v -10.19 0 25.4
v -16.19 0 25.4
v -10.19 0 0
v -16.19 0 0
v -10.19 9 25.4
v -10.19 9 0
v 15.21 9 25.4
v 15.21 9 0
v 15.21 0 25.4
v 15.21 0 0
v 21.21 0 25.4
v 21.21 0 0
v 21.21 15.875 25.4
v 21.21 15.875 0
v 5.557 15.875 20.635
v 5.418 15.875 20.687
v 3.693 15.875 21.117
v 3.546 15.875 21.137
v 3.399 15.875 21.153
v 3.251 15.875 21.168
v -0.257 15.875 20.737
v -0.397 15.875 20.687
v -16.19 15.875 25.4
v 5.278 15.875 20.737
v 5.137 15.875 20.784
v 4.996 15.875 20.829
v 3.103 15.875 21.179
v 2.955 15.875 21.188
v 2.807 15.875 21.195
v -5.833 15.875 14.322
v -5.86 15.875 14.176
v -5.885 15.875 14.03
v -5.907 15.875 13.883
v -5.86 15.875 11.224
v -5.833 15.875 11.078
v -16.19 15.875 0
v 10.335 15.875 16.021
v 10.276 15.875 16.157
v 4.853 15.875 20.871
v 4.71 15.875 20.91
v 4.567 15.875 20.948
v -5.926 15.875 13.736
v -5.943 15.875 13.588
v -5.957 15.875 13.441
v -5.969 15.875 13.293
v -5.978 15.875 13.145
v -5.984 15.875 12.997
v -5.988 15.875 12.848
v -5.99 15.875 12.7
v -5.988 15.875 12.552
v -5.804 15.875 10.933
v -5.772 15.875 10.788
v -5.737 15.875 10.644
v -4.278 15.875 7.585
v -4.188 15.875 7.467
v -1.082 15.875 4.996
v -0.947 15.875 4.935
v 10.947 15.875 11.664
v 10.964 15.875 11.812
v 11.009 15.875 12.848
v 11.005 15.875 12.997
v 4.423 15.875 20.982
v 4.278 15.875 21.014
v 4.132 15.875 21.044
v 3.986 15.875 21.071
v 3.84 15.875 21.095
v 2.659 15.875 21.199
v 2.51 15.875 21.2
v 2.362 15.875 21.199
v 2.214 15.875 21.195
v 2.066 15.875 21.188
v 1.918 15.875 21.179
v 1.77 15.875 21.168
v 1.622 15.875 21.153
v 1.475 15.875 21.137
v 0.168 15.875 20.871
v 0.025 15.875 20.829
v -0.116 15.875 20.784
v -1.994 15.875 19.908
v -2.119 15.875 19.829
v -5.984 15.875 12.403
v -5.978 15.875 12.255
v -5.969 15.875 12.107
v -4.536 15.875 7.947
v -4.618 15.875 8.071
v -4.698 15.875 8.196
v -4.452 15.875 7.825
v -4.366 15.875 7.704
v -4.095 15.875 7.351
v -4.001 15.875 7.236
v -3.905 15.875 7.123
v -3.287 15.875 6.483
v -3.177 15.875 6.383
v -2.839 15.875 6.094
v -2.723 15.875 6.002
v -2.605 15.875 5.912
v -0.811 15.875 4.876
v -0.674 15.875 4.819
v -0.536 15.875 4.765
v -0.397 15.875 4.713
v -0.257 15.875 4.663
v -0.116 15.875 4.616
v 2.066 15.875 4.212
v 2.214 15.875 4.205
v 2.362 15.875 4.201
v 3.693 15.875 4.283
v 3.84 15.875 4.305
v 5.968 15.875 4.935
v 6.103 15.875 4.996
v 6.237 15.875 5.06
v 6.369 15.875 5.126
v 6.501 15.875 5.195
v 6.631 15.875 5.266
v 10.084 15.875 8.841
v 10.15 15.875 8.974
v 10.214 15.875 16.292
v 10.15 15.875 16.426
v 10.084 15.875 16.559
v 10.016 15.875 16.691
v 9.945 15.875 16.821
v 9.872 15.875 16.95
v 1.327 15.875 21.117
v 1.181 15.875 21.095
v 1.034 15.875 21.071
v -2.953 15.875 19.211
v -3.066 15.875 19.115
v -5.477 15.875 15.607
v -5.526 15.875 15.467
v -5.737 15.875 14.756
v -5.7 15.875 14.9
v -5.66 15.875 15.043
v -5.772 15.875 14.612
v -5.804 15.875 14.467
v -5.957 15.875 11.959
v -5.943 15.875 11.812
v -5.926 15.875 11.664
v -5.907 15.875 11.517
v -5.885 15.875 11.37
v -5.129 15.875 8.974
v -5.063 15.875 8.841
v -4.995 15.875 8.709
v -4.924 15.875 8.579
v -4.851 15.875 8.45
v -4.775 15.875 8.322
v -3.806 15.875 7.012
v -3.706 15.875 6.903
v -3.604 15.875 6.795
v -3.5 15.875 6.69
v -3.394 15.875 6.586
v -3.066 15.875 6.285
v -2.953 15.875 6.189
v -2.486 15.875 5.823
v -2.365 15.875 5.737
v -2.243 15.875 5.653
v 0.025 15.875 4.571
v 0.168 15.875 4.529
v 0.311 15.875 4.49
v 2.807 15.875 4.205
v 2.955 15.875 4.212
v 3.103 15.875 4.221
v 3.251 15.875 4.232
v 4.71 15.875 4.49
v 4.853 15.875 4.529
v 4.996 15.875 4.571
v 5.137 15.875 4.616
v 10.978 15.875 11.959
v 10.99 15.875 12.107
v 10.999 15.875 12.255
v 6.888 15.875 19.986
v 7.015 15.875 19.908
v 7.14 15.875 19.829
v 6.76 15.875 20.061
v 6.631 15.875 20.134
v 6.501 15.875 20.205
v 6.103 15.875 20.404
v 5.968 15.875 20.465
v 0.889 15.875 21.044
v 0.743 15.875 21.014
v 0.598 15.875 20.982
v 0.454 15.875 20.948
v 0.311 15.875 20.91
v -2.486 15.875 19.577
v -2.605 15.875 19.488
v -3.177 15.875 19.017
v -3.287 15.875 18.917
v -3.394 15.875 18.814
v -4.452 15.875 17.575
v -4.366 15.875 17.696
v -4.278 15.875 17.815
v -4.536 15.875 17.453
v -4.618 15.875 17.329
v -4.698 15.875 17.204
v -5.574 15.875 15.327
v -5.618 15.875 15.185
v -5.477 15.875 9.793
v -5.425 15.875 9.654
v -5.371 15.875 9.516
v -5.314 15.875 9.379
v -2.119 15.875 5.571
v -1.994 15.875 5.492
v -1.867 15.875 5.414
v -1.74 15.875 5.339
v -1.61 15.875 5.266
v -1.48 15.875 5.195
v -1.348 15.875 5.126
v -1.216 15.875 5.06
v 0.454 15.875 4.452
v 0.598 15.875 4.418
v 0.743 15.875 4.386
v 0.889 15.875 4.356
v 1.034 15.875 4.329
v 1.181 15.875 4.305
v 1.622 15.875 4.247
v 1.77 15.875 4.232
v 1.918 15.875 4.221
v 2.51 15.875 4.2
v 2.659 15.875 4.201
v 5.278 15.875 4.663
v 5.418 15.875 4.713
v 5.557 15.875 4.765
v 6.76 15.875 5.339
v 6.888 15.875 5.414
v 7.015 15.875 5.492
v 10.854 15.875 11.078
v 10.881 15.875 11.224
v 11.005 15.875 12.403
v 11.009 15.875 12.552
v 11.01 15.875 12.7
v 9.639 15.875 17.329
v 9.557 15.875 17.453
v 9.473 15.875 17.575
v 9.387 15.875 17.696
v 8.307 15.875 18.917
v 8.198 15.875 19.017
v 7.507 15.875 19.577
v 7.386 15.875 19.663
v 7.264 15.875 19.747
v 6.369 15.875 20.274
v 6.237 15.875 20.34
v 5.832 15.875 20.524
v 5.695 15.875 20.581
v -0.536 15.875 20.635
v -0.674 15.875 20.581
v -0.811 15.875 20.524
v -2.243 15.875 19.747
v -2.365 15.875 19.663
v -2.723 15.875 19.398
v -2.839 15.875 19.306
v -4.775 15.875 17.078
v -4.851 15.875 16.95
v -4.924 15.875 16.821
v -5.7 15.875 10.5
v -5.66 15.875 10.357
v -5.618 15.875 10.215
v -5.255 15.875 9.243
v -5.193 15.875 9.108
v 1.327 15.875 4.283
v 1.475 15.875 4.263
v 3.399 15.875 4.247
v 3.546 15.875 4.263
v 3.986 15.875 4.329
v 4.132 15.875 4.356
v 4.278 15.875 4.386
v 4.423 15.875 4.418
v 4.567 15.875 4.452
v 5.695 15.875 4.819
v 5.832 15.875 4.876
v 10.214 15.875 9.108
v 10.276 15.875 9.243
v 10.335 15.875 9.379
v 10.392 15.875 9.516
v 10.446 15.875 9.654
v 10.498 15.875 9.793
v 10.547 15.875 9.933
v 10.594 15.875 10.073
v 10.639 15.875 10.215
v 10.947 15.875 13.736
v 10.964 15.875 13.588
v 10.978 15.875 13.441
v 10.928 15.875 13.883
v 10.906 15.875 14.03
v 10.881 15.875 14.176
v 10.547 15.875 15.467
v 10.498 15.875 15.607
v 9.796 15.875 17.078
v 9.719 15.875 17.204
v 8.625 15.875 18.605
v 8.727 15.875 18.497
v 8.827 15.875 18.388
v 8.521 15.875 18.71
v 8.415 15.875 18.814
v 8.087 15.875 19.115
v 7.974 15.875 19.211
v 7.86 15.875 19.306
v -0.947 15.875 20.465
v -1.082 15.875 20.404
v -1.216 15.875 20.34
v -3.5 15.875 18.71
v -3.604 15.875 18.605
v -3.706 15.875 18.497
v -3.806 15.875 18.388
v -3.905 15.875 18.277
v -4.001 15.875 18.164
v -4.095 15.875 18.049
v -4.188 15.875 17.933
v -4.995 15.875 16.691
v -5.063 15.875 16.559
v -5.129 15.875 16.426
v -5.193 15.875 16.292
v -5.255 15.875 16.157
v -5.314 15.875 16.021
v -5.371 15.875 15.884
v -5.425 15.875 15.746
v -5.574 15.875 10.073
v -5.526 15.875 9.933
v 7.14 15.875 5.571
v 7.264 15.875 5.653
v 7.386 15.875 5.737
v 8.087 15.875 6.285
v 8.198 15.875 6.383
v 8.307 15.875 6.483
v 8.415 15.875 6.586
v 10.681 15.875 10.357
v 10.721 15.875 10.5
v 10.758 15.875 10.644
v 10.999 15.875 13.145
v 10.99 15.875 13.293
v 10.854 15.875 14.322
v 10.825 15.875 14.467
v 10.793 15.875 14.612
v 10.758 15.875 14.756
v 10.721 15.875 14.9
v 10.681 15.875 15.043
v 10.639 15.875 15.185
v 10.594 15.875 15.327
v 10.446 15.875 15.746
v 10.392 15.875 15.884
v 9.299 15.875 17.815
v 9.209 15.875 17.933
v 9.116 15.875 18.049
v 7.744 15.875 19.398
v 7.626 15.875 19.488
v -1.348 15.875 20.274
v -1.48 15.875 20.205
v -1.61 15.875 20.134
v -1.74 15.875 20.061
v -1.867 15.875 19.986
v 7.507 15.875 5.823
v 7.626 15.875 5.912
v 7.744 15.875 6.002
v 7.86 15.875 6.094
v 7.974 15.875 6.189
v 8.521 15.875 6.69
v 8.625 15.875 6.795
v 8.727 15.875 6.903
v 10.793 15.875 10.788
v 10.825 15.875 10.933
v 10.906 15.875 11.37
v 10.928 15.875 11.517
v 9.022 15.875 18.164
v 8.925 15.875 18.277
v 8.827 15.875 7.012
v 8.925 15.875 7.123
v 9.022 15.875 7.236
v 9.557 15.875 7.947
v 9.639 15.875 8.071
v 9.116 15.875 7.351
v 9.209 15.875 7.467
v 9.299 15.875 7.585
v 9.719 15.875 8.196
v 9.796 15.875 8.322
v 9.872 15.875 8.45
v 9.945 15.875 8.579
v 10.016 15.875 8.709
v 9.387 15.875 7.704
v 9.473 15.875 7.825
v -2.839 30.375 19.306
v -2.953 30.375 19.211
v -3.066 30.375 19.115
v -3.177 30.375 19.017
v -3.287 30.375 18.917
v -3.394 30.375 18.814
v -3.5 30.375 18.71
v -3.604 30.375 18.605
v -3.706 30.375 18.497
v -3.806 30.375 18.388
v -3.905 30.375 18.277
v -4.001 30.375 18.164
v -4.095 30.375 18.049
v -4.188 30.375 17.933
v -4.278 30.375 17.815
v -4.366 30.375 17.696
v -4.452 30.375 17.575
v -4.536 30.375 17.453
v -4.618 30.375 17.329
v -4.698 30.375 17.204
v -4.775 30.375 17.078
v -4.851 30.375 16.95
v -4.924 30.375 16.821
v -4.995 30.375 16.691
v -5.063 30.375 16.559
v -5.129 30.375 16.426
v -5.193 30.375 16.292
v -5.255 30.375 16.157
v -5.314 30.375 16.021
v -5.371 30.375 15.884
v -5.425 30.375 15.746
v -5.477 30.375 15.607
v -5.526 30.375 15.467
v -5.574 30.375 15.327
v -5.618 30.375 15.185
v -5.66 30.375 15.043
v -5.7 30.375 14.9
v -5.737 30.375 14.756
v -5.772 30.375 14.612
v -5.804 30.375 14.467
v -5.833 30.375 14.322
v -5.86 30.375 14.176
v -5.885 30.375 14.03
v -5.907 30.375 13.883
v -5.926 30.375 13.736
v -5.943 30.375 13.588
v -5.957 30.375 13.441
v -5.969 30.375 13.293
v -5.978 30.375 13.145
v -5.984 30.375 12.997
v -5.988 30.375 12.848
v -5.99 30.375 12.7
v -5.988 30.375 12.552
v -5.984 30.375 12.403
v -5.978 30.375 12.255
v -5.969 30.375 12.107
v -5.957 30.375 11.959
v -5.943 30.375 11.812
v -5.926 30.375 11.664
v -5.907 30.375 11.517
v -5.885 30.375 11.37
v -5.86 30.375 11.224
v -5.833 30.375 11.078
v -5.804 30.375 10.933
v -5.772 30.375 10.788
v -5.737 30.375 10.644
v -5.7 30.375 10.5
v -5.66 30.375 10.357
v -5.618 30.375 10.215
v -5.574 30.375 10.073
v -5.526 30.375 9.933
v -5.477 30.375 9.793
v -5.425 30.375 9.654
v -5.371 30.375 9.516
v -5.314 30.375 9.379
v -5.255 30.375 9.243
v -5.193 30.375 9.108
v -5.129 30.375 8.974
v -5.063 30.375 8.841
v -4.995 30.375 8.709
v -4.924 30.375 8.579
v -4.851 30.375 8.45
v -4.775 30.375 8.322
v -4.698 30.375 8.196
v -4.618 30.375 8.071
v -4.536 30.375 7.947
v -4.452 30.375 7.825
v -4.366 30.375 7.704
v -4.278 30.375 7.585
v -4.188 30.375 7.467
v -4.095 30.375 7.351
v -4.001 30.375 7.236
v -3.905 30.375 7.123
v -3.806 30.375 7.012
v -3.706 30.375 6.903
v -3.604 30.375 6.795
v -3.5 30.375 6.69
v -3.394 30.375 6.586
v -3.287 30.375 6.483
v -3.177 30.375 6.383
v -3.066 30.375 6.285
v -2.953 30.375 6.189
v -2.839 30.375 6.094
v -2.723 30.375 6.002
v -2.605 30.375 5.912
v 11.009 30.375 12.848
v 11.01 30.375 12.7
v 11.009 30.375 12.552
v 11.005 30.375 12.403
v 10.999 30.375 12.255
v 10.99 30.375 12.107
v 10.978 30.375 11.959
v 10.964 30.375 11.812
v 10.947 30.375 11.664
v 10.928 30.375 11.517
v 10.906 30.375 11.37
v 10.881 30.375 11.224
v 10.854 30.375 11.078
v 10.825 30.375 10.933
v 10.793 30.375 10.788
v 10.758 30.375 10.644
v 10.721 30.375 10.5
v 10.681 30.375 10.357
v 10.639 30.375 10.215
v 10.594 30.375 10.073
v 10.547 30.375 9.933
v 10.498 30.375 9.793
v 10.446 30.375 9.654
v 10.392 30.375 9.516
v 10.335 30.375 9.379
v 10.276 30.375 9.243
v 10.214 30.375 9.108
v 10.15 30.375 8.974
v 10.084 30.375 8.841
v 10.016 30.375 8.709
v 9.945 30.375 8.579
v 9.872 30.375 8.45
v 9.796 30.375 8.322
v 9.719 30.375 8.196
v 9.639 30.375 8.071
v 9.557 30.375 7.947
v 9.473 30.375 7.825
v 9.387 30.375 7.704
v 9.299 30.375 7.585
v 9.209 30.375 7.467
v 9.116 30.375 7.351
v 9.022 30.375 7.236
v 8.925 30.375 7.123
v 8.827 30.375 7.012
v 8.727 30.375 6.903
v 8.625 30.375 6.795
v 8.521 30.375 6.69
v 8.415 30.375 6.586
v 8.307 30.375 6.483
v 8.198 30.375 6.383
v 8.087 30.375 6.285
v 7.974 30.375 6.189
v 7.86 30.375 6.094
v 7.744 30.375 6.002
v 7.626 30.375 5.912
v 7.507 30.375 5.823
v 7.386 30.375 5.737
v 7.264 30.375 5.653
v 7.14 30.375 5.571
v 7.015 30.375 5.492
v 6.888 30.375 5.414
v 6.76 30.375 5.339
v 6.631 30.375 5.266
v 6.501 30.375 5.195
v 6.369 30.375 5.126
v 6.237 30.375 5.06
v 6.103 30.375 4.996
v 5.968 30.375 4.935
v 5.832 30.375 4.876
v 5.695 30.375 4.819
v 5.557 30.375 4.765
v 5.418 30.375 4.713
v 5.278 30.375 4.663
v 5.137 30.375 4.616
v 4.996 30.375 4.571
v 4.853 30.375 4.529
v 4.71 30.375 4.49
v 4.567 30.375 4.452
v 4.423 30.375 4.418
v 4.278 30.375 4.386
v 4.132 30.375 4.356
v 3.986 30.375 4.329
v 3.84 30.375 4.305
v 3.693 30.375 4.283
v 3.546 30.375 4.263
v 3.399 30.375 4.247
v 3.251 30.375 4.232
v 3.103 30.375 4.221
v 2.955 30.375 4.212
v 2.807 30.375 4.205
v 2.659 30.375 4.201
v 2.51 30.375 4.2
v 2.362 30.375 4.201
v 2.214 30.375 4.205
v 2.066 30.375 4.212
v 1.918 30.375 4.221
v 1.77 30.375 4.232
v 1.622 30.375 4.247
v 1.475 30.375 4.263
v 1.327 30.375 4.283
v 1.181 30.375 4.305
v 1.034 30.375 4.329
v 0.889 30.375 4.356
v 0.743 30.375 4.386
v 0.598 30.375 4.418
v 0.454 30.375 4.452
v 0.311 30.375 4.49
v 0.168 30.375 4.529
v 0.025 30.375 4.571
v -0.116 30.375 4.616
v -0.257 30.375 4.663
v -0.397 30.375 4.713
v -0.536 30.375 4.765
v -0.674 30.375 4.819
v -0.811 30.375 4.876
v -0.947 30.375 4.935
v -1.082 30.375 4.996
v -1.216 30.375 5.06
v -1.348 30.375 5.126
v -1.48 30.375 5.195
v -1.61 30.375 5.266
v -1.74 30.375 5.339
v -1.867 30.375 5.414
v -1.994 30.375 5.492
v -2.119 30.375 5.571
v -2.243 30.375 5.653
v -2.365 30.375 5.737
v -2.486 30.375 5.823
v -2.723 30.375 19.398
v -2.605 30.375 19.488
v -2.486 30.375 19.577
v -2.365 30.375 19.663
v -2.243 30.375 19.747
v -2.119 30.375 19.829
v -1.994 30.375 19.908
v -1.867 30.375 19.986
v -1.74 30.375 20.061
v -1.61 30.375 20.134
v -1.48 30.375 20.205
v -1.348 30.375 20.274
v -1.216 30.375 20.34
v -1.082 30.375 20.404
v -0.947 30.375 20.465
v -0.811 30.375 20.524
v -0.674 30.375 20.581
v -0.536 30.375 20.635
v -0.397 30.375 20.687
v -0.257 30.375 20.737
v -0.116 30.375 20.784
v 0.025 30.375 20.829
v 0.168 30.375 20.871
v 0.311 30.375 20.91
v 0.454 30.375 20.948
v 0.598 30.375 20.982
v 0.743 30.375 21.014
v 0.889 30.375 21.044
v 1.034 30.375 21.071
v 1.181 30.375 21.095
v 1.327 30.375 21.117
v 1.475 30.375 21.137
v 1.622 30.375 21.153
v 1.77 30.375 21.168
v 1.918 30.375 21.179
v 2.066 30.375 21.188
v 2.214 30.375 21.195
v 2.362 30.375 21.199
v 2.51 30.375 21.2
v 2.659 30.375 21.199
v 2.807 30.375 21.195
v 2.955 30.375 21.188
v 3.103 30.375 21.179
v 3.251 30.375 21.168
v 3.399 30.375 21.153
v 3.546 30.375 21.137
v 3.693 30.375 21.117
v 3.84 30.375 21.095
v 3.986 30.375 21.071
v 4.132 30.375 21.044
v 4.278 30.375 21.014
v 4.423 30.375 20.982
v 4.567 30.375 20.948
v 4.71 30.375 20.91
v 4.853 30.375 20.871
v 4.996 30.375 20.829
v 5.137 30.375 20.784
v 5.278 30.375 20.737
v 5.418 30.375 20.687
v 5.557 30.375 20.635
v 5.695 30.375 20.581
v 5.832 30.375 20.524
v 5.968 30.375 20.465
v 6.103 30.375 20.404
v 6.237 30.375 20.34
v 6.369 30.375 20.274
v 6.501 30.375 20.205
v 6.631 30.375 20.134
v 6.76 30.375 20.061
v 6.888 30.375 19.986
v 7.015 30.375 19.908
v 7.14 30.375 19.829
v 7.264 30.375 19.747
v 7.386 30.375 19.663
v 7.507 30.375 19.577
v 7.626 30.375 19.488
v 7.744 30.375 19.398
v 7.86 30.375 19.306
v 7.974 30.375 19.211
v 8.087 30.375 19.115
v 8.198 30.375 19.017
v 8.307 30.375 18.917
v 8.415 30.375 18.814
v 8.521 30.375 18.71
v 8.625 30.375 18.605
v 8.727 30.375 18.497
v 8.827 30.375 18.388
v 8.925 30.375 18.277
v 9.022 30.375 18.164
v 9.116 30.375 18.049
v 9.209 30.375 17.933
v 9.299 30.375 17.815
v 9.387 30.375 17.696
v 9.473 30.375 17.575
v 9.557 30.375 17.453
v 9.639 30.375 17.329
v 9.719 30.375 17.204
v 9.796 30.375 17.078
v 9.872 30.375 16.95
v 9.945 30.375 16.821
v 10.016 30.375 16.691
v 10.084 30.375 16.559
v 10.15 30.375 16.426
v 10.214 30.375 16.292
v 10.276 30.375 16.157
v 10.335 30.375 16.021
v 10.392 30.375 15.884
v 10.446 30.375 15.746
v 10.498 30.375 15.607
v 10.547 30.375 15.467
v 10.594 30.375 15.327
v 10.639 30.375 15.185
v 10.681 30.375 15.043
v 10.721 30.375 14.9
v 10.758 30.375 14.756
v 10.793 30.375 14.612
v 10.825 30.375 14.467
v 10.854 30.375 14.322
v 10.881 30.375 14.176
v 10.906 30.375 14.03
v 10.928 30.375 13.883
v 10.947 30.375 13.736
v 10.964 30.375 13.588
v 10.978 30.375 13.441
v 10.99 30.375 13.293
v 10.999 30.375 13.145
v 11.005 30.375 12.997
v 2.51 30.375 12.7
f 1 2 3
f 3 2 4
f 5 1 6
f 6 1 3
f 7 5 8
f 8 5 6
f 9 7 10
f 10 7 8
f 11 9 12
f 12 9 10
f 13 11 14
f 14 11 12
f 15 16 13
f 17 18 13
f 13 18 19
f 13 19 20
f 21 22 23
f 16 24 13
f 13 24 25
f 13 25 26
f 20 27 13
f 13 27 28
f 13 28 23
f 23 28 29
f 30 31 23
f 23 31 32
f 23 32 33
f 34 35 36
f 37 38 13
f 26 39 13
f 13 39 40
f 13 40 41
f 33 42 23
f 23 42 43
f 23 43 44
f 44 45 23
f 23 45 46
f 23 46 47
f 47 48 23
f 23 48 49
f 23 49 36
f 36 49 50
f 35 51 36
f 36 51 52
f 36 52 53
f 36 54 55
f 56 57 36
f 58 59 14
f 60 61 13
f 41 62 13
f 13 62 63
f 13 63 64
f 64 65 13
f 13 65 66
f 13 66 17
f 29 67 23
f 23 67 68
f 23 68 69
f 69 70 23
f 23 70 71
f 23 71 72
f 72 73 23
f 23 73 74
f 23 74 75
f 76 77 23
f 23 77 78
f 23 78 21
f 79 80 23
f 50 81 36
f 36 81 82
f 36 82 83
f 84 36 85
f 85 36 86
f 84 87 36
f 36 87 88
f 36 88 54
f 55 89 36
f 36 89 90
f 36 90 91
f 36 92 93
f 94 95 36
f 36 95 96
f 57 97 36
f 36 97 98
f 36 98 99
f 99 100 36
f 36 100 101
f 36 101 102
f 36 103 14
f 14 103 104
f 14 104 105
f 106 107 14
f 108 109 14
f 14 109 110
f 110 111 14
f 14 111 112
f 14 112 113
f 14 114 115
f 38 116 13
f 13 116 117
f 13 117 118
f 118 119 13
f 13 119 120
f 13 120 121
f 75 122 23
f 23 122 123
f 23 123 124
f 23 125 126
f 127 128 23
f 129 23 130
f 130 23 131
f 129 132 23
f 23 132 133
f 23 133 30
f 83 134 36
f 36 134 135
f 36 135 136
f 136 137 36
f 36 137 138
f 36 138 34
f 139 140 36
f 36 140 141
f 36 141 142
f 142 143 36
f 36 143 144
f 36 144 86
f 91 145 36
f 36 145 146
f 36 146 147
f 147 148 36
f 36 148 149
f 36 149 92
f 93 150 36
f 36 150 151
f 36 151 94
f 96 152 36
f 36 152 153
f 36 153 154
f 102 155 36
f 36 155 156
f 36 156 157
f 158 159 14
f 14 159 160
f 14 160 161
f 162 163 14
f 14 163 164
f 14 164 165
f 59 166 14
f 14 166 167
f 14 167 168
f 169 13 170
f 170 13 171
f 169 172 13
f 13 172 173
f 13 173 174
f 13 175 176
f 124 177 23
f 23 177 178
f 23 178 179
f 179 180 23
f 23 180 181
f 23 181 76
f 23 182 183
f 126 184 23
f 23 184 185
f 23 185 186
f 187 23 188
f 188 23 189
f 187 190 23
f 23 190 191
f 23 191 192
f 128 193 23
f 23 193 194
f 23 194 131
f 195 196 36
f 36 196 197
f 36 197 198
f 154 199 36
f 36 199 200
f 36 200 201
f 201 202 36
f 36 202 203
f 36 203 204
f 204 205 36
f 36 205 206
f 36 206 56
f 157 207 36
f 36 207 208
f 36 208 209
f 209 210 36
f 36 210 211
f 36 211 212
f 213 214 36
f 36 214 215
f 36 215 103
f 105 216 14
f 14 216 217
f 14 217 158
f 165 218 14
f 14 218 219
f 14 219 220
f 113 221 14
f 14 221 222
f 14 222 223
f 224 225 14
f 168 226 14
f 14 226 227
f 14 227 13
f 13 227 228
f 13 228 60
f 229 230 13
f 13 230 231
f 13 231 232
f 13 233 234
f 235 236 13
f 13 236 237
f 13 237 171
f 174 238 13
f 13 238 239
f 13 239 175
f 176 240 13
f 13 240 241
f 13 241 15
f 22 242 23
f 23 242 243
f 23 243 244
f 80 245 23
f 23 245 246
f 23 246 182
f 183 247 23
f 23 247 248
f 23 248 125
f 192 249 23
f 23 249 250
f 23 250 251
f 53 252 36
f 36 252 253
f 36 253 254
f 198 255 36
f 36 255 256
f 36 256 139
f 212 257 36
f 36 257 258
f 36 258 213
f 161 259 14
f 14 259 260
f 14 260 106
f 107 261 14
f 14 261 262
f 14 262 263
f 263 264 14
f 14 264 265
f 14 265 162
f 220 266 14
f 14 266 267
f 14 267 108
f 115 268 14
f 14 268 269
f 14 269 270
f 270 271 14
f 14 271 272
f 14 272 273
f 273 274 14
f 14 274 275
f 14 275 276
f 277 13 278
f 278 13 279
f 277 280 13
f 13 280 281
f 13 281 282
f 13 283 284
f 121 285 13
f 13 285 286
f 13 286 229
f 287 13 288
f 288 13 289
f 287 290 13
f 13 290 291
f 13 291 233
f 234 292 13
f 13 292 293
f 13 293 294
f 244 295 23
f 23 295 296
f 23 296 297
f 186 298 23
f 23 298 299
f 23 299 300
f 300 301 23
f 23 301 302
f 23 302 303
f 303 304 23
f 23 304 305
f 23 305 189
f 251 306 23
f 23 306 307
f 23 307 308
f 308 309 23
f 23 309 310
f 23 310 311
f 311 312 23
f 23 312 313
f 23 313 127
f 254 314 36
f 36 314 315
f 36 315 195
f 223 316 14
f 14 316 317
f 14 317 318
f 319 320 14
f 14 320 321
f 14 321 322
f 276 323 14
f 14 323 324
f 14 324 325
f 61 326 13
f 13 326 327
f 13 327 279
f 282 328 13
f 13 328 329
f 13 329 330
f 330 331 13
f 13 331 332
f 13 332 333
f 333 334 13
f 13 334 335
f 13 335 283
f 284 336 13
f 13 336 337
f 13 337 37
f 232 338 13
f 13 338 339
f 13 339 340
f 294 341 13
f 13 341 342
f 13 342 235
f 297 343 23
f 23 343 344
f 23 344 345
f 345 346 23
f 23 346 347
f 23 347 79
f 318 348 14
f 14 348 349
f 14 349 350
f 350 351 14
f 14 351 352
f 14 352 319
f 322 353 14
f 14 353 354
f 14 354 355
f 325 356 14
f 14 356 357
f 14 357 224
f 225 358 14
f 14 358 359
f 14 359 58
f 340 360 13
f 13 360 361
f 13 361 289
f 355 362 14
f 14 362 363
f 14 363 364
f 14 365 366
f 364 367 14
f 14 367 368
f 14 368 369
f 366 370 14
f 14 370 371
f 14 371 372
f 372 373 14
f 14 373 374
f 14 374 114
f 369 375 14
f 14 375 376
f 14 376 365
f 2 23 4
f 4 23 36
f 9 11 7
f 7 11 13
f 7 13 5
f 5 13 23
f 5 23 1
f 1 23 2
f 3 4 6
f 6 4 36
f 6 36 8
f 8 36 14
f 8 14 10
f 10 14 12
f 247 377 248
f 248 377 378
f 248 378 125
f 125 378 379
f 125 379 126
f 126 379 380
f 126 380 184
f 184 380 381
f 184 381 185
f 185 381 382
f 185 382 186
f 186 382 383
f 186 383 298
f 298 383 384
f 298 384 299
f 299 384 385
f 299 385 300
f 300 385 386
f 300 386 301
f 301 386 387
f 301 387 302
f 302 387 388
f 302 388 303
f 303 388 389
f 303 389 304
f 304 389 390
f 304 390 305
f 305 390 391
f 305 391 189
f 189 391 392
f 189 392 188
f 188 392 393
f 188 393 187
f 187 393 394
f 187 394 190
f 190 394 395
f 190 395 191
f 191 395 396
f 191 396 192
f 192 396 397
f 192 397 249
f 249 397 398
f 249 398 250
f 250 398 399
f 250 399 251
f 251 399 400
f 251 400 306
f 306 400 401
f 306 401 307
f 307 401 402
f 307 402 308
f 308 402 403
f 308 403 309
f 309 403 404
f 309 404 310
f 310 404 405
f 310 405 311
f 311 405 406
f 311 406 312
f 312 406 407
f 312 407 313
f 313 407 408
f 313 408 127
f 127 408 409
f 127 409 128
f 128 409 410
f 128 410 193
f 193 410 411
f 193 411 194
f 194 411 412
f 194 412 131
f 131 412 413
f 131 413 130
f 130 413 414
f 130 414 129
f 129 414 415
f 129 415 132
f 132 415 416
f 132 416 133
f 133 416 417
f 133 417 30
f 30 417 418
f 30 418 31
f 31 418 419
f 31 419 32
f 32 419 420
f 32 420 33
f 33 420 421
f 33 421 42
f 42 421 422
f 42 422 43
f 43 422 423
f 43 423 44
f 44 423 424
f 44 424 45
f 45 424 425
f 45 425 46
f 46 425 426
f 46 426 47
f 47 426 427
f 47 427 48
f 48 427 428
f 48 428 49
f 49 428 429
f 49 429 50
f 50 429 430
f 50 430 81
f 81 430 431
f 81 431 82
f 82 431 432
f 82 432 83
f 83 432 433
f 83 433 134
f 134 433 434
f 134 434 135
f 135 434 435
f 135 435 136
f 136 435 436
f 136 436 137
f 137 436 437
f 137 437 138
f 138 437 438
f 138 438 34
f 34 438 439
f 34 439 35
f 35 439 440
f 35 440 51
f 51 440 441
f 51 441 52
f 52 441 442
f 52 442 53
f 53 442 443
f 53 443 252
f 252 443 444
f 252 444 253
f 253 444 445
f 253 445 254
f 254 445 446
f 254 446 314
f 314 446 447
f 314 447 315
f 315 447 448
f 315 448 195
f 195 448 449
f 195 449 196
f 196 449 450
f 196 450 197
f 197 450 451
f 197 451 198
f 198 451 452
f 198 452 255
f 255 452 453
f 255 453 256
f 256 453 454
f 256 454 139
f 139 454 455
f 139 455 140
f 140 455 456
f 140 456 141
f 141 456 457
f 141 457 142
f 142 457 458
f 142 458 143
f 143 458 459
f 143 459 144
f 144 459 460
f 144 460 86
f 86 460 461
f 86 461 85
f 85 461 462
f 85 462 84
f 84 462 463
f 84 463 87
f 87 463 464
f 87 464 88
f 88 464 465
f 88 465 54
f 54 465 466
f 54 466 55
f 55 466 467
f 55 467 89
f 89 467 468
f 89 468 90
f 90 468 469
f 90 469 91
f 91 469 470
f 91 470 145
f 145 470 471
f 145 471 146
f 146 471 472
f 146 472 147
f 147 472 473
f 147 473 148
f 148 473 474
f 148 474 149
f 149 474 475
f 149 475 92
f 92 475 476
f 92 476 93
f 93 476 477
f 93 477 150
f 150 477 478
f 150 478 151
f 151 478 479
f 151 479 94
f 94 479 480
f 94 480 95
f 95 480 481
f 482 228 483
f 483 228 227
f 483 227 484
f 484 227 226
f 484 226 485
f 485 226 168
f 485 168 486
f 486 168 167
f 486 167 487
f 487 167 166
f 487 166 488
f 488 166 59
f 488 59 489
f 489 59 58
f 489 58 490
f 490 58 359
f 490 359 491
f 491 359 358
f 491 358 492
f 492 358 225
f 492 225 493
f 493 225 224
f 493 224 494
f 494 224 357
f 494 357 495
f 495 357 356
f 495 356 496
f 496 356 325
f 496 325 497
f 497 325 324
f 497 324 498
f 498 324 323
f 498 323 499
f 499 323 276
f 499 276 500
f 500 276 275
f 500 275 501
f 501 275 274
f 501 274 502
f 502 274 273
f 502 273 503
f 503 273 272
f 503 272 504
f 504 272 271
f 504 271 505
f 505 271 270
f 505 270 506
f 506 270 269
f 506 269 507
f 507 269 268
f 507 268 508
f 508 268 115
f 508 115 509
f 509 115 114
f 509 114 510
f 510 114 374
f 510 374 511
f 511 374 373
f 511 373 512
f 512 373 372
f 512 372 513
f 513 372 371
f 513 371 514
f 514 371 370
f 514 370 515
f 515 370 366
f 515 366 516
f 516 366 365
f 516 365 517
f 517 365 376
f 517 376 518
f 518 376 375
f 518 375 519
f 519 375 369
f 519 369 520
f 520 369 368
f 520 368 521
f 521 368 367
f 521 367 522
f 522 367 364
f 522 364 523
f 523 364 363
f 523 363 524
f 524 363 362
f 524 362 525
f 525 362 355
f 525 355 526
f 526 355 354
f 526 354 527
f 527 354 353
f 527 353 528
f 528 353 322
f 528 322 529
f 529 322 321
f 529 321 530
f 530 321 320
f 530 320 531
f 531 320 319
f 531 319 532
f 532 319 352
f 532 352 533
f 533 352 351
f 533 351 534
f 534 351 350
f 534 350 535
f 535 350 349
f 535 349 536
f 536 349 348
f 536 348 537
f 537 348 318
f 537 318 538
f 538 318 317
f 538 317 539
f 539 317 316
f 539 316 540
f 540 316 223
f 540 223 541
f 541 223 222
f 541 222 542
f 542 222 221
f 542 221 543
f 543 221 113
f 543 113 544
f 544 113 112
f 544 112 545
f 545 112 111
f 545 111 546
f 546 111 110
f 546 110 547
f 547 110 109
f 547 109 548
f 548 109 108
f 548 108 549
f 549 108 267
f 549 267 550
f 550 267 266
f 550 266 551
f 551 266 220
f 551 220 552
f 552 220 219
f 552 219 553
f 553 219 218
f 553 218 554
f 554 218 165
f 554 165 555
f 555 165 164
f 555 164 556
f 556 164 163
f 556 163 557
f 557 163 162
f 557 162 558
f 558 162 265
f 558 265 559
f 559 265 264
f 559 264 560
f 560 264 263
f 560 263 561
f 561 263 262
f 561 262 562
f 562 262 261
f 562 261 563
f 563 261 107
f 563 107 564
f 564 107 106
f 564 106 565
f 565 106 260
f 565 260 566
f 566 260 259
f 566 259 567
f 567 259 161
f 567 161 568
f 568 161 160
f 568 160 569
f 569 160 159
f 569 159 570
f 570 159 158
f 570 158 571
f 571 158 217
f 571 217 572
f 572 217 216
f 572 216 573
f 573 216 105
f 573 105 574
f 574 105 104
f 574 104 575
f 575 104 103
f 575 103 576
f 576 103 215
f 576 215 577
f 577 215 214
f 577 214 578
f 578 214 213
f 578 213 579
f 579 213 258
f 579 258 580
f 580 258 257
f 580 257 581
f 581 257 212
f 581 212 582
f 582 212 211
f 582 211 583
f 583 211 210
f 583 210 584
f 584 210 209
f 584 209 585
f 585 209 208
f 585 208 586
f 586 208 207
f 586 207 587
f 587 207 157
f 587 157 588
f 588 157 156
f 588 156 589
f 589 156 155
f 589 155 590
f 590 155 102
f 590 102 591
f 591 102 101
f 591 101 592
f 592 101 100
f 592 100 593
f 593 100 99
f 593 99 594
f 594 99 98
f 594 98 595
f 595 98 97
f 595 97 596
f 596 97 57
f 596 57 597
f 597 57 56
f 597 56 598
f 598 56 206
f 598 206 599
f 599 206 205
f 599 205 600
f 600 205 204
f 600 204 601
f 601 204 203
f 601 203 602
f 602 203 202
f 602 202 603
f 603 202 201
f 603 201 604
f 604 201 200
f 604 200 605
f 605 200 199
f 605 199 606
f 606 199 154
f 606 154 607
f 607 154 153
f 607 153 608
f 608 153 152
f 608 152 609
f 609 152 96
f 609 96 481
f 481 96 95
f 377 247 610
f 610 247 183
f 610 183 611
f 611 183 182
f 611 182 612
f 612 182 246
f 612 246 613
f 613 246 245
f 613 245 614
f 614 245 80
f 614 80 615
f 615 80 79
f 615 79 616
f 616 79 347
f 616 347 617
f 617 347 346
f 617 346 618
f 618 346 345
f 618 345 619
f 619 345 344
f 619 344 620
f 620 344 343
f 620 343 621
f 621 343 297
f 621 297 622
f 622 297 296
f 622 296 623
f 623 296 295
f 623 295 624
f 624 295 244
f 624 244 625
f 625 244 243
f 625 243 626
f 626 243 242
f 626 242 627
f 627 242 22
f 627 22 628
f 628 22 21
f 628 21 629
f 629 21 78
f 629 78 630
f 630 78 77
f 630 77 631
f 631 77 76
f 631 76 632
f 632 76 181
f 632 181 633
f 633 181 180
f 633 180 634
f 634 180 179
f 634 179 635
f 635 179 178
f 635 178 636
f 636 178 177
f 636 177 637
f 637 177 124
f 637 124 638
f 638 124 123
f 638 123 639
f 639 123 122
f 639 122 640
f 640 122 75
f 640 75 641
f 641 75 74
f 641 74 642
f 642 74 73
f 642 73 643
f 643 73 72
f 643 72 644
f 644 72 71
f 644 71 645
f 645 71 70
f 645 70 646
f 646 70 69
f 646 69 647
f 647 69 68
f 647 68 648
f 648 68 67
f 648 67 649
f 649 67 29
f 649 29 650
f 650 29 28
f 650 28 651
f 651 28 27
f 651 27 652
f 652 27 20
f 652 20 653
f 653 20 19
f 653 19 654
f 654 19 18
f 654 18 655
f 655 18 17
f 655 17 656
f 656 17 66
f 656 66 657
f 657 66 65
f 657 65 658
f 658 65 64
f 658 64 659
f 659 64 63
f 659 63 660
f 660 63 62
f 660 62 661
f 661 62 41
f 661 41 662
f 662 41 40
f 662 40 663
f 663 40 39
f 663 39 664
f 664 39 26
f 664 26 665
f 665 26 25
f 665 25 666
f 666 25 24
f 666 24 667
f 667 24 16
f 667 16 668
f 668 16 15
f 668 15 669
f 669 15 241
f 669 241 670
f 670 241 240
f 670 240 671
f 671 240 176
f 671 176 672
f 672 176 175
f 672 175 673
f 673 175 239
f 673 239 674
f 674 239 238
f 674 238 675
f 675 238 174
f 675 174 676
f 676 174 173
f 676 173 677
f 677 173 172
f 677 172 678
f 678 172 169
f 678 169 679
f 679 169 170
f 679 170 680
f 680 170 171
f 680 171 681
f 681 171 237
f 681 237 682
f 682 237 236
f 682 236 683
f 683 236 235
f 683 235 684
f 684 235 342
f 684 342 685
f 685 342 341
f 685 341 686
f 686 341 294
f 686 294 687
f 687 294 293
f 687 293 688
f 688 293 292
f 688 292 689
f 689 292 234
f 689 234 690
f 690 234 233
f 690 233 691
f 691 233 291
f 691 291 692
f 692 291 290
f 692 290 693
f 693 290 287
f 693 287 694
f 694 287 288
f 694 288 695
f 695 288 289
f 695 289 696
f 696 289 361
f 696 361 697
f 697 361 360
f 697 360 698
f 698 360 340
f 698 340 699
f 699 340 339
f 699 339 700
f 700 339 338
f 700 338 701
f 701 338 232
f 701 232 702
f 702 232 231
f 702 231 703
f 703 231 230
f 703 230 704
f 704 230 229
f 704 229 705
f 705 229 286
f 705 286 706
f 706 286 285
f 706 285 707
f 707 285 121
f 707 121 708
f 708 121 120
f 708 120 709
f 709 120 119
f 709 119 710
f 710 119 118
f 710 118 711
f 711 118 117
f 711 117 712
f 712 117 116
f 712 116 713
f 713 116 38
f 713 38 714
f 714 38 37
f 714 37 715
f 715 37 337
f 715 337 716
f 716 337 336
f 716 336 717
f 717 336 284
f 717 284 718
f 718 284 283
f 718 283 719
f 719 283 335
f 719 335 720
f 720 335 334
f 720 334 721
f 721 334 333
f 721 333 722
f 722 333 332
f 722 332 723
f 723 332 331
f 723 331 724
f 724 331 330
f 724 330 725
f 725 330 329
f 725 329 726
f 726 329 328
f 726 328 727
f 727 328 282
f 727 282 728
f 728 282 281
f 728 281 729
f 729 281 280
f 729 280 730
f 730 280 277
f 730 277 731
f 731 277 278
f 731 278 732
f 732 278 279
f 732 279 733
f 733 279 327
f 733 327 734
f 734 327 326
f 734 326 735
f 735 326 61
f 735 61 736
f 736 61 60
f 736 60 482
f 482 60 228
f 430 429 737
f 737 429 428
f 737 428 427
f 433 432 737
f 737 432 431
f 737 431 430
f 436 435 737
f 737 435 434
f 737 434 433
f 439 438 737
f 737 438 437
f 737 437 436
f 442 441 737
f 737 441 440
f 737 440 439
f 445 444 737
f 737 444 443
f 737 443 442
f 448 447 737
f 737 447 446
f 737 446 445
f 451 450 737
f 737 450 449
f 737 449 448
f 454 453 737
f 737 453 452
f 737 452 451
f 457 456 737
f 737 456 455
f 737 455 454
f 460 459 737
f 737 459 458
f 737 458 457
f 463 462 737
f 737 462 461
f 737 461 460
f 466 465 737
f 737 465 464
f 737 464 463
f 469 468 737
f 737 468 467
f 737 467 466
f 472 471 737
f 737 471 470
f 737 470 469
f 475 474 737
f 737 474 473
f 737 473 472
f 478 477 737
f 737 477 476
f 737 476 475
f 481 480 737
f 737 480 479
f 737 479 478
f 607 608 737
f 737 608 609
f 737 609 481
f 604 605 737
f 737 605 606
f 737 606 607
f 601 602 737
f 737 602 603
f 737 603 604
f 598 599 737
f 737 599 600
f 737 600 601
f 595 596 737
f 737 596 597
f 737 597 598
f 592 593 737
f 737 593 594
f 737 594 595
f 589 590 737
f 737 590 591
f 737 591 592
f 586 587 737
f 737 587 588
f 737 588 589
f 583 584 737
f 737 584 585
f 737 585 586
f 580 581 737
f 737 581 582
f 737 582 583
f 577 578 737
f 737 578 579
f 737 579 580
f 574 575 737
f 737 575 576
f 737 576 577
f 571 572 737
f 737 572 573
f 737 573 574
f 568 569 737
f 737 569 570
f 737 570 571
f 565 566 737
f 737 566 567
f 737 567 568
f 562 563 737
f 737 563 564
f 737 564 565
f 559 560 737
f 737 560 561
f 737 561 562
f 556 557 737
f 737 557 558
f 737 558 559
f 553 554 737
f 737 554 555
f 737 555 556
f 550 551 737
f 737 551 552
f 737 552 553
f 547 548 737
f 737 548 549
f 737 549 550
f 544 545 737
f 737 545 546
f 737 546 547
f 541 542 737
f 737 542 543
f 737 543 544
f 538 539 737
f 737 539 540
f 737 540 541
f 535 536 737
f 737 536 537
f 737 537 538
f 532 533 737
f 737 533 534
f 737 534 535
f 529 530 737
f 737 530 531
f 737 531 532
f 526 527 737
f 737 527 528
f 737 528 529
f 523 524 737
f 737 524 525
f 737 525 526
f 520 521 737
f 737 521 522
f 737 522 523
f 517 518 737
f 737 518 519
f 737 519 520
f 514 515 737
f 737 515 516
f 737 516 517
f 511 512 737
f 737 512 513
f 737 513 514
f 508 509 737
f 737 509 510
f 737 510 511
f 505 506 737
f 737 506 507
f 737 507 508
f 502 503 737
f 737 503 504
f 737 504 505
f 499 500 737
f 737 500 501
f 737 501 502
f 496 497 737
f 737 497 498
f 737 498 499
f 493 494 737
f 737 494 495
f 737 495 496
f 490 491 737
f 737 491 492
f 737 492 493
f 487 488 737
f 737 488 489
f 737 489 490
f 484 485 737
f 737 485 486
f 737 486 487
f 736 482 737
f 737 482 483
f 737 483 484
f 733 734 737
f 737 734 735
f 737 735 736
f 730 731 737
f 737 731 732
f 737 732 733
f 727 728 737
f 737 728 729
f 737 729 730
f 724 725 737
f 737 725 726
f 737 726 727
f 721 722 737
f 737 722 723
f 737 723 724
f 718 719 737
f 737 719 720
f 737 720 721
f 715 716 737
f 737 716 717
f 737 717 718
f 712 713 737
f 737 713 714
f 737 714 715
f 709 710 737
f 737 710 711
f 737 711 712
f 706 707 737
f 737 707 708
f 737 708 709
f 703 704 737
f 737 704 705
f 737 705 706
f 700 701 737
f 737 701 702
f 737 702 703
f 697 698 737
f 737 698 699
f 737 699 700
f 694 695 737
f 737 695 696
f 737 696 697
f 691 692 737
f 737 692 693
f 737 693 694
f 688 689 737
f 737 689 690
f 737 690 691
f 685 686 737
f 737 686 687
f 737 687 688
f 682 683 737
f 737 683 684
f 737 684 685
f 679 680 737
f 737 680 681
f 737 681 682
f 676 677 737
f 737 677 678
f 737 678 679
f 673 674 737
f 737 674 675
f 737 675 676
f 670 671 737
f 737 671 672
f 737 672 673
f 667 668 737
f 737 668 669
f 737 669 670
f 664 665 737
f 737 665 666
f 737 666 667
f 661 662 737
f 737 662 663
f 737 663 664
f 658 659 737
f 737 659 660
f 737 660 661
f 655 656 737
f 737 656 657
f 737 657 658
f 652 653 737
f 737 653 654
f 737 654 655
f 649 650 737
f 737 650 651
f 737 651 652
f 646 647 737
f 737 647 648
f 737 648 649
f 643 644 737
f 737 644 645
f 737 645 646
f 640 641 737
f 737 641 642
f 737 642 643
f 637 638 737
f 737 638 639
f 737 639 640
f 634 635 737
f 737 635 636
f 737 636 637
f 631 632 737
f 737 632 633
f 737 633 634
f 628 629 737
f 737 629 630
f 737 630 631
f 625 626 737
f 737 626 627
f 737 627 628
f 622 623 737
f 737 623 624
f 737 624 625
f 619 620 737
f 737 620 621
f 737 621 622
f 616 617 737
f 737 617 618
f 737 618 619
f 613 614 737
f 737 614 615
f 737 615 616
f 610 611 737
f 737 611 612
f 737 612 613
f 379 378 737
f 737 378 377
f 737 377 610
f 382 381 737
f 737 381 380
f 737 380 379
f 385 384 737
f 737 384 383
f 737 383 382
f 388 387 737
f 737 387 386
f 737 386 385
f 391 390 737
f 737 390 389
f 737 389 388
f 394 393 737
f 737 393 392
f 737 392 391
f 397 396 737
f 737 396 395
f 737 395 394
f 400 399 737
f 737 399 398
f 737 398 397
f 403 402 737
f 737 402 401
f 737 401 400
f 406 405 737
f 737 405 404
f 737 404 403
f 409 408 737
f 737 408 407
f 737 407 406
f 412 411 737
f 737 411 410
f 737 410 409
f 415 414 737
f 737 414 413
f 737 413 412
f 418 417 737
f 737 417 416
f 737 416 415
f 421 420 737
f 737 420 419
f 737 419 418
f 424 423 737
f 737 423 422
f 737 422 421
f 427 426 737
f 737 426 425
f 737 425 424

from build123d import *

# Parameters (mm, degrees)
BOSS_EXTRUDE1_DEPTH = 25.4
SKETCH2_R           = 8.5
BOSS_EXTRUDE2_DEPTH = 14.5


with BuildPart() as part:
    # Sketch1 → Boss-Extrude1 (new body)
    with BuildSketch(Plane.XY):
        Polygon((-10.189534884, 0), (-10.189534884, 9), (15.210465116, 9), (15.210465116, 0), (21.210465116, 0), (21.210465116, 15.875), (-16.189534884, 15.875), (-16.189534884, 0), align=None)
    extrude(amount=BOSS_EXTRUDE1_DEPTH)

    # Sketch2 → Boss-Extrude2 (add)
    with BuildSketch(Plane(origin=(0, 15.875, 0), x_dir=(1, 0, 0), z_dir=(0, 1, 0))):
        with Locations((2.510465116, -12.7)):
            Circle(SKETCH2_R)
    extrude(amount=BOSS_EXTRUDE2_DEPTH)


solid = part.part
